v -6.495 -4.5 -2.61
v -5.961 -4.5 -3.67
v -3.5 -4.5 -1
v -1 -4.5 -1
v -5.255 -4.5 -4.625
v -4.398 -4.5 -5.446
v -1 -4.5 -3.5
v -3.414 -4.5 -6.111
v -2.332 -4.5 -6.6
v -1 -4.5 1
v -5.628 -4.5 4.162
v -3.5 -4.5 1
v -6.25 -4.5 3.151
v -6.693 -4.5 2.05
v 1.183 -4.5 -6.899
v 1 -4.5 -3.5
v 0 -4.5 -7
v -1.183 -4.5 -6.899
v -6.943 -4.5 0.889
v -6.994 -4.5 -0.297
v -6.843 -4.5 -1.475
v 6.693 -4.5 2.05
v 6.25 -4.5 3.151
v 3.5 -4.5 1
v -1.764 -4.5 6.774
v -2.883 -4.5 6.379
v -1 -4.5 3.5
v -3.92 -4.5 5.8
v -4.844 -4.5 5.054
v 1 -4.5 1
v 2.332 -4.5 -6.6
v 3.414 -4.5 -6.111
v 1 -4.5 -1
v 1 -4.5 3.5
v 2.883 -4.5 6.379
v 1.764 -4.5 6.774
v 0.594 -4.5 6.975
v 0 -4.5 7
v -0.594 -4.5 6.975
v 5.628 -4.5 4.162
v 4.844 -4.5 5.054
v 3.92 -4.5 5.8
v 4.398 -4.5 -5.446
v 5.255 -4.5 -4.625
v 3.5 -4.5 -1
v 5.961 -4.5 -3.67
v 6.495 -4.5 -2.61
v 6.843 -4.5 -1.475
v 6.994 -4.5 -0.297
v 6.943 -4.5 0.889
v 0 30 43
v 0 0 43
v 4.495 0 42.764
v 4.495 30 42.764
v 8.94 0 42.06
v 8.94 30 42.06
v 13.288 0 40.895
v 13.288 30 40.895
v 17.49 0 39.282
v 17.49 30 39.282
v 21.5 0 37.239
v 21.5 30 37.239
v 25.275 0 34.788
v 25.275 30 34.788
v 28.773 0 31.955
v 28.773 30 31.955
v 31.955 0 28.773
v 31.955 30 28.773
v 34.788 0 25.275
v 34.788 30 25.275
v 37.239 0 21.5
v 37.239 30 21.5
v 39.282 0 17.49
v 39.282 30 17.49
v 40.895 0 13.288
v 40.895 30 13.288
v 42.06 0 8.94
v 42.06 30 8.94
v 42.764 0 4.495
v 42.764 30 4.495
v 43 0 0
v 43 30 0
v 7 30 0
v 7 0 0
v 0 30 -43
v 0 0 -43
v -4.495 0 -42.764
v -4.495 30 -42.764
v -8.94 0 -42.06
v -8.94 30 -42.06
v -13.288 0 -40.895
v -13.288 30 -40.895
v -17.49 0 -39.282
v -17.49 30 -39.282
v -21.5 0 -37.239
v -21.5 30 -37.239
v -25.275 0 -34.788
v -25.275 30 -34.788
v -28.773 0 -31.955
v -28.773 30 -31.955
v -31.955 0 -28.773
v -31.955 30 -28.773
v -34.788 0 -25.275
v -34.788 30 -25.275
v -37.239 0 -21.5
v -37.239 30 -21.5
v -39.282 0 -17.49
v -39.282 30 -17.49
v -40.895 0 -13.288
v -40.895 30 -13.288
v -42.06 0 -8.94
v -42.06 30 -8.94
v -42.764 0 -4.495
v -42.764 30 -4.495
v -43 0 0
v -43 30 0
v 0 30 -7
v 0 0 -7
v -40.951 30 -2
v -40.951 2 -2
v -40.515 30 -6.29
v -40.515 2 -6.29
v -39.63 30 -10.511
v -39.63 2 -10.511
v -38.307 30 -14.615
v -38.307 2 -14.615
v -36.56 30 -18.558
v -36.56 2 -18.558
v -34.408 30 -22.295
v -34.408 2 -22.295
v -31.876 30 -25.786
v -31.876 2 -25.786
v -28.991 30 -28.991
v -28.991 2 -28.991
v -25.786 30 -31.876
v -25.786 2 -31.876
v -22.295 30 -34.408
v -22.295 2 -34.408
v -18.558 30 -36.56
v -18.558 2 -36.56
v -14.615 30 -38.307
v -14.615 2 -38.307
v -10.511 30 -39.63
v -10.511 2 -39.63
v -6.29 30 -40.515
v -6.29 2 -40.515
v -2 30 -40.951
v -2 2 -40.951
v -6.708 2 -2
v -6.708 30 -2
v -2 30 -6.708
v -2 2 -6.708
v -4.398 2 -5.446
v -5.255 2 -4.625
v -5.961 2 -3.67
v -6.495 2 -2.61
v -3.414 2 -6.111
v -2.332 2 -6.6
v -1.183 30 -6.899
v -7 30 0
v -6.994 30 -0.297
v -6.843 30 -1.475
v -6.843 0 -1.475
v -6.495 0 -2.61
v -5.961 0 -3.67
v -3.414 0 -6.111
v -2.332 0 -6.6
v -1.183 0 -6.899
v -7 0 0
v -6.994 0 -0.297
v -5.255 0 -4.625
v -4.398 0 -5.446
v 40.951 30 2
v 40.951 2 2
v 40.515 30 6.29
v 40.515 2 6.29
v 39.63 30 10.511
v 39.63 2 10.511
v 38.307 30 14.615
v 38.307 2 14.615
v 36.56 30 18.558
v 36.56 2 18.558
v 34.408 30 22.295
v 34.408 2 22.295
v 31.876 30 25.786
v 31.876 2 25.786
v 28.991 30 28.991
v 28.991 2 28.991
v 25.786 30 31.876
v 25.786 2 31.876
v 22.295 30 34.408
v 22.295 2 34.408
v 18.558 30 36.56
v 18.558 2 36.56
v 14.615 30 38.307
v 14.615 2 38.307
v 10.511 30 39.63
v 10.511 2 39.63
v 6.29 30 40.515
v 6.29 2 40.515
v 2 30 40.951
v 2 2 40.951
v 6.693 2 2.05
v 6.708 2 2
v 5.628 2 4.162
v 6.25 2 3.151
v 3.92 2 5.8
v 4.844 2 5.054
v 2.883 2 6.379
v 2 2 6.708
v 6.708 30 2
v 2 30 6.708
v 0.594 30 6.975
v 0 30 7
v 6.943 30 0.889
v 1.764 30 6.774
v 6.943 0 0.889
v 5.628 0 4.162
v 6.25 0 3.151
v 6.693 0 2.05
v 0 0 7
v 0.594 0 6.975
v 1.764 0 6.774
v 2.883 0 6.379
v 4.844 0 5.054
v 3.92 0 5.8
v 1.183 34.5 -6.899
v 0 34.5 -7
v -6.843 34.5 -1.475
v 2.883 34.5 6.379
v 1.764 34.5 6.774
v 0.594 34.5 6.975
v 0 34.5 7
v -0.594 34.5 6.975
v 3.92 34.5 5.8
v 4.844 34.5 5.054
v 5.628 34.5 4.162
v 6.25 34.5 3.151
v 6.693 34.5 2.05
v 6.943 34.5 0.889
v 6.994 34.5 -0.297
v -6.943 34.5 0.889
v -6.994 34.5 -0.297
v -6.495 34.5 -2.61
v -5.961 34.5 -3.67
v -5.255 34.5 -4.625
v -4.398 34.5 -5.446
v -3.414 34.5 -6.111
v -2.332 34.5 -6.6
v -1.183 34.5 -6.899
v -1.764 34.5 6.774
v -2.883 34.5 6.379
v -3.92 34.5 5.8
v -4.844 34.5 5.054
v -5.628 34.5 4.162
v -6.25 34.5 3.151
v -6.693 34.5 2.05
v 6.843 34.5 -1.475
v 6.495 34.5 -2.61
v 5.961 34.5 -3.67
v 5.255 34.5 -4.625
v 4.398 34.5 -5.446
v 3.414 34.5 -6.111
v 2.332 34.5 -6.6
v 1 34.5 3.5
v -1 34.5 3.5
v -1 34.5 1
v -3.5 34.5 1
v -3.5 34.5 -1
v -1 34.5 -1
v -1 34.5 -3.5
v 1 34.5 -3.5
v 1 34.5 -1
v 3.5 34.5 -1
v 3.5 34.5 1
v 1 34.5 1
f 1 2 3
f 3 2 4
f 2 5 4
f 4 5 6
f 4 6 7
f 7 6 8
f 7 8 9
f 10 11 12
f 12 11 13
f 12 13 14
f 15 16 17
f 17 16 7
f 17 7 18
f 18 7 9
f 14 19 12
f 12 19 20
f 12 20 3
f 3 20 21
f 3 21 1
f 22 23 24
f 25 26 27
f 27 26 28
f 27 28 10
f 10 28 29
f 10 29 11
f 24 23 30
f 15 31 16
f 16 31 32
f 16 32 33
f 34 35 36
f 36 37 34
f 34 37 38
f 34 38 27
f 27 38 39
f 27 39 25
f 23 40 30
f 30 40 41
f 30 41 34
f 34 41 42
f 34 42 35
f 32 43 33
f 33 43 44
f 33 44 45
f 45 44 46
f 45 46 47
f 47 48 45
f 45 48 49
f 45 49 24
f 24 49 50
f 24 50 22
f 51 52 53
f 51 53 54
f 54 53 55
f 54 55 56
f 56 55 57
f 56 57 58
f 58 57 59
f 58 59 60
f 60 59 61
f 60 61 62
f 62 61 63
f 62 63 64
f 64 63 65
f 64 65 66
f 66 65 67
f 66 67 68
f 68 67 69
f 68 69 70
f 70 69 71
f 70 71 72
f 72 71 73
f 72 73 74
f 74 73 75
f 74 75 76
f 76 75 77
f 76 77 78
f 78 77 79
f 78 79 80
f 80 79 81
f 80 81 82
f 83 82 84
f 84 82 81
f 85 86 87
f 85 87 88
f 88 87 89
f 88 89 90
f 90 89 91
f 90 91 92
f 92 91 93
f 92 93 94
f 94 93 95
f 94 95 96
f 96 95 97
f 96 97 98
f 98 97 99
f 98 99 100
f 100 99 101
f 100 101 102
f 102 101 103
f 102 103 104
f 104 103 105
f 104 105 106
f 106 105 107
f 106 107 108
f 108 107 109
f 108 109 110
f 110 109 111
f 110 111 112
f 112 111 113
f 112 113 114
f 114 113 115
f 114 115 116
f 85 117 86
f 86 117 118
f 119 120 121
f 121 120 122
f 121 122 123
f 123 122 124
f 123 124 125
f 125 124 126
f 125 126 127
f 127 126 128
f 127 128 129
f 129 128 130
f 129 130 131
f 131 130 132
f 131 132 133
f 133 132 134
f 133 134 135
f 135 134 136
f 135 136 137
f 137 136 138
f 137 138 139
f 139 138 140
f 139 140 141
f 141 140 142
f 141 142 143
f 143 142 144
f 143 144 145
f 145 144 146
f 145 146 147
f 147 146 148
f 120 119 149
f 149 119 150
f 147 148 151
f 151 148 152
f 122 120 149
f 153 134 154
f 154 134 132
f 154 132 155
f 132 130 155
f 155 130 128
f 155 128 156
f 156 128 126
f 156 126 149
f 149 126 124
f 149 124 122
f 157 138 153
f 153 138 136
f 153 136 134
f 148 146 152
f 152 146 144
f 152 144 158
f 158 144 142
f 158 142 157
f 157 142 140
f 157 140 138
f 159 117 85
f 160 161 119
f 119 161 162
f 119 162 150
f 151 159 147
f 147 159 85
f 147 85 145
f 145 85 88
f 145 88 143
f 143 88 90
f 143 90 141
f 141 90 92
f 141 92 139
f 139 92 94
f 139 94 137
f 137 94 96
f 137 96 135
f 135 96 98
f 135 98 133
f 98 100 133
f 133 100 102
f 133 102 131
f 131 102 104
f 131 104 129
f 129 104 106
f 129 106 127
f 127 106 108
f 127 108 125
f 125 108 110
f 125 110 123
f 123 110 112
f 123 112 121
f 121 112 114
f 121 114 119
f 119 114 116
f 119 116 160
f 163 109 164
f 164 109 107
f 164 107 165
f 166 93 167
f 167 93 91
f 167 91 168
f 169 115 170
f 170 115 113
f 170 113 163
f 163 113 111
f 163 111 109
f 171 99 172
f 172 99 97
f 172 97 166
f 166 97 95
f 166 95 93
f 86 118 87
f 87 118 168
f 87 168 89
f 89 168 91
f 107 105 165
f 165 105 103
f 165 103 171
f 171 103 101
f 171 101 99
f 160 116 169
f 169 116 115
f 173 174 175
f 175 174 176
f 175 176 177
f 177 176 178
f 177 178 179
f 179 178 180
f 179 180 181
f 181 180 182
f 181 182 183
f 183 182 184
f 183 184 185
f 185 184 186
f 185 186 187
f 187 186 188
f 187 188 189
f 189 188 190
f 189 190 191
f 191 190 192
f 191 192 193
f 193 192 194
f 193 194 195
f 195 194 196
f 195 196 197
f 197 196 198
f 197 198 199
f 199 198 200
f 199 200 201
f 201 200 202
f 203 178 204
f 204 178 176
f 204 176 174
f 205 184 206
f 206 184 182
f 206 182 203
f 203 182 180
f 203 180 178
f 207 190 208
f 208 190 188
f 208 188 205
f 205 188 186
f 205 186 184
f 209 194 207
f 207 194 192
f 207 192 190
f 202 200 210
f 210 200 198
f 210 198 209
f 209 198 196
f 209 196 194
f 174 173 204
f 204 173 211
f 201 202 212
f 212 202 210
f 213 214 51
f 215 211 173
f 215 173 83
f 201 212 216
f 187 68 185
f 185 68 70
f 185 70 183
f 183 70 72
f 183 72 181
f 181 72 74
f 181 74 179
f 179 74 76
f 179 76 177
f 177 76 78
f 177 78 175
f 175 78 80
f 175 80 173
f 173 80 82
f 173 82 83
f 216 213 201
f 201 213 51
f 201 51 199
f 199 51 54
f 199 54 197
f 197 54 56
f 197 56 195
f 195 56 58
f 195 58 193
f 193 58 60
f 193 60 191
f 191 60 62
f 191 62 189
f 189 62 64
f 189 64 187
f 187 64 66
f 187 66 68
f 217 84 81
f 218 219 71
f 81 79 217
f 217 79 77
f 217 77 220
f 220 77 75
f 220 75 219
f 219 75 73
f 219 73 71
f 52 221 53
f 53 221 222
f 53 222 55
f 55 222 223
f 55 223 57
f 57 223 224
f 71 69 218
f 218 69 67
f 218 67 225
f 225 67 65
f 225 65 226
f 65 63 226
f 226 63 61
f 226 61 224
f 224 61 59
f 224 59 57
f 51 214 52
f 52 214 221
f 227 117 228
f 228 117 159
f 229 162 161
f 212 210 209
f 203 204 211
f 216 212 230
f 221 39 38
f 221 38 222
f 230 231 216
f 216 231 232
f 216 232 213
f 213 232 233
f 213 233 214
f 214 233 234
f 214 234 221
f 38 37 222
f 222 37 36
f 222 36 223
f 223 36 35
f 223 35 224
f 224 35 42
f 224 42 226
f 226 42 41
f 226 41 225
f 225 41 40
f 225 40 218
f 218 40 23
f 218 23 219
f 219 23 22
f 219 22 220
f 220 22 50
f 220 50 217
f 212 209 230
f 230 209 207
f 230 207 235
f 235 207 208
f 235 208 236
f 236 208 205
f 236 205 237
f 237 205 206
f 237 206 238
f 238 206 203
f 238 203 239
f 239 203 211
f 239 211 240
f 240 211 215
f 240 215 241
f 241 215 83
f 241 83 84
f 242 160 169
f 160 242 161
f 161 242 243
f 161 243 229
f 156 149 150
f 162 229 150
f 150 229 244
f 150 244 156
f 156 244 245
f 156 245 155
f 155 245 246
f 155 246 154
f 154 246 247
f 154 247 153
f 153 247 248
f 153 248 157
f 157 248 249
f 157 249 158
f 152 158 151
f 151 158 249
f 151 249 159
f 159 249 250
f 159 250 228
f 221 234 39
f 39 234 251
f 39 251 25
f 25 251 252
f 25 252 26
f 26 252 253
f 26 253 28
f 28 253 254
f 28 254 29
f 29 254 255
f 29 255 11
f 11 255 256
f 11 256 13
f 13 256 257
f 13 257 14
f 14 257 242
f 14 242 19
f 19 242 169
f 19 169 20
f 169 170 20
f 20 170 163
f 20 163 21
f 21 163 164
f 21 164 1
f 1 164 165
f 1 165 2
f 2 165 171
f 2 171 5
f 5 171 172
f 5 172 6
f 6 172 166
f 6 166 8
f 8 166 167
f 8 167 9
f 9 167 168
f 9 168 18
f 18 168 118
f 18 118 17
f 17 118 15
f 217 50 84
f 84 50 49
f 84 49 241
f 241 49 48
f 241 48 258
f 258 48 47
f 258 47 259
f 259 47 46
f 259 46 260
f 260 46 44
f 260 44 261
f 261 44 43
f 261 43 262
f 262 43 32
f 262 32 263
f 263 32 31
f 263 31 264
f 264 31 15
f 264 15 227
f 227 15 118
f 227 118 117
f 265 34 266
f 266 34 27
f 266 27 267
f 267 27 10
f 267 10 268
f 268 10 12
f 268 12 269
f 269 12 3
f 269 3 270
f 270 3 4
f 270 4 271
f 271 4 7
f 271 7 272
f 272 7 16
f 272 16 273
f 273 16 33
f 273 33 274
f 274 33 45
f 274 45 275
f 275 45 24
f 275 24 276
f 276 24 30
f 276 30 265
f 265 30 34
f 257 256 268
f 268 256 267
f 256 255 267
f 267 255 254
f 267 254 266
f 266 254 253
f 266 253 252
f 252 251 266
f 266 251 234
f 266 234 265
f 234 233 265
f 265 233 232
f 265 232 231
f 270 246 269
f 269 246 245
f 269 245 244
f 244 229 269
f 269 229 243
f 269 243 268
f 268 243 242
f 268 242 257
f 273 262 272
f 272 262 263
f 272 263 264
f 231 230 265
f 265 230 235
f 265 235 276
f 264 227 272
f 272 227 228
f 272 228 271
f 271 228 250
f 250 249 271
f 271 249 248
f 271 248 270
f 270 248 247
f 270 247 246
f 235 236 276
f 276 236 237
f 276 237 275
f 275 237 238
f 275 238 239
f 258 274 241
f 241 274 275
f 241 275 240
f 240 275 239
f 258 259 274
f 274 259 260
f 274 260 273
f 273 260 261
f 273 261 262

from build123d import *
from build123d.topology import SkipClean

# Parameters (mm, degrees)
EXTRUDE_1_DEPTH      = 30
CUT_EXTRUDE_1_DEPTH  = 68.808554033
SHELL_START          = 2
SHELL_1_DEPTH        = 28
EXTRUDE_2_DEPTH      = 4.5
EXTRUDE_2_DEPTH_BACK = 34.5
SKETCH_3_R           = 7


# Read off the part's stored shape, not the designer's step: 抽壳1
with BuildPart() as part:
    # 草图1 → 凸台-拉伸1 (new body)
    with BuildSketch(Plane(origin=(0, 0, 0), x_dir=(1, 0, 0), z_dir=(0, 1, 0))):
        with BuildLine():
            Line((0, 7), (0, 43))
            ThreePointArc((0, 43), (-30.405591591, 30.405591591), (-43, 0))
            Line((-43, 0), (-7, 0))
            ThreePointArc((-7, 0), (-4.949747468, -4.949747468), (0, -7))
            Line((0, -7), (0, -43))
            ThreePointArc((0, -43), (30.405591591, -30.405591591), (43, 0))
            Line((43, 0), (7, 0))
            ThreePointArc((7, 0), (4.949747468, 4.949747468), (0, 7))
        make_face()
    extrude(amount=EXTRUDE_1_DEPTH)

    # 草图2 → 切除-拉伸1 (cut, through all)
    with BuildSketch(Plane(origin=(0, 30, 0), x_dir=(1, 0, 0), z_dir=(0, 1, 0))):
        Polygon((1, -1), (1, -3.5), (-1, -3.5), (-1, -1), (-3.5, -1), (-3.5, 1), (-1, 1), (-1, 3.5), (1, 3.5), (1, 1), (3.5, 1), (3.5, -1), align=None)
    extrude(amount=-CUT_EXTRUDE_1_DEPTH, mode=Mode.SUBTRACT)

    # 抽壳1 outline → 抽壳1 (cut)
    with BuildSketch(Plane(origin=(0, 0, 0), x_dir=(1, 0, 0), z_dir=(0, 1, 0)).offset(SHELL_START)):
        with BuildLine():
            Line((3, -3), (3, -5.5))
            Line((3, -5.5), (2, -5.5))
            Line((2, -5.5), (2, -40.951190459))
            ThreePointArc((2, -40.951190459), (28.991378029, -28.991378029), (40.951190459, -2))
            Line((40.951190459, -2), (5.5, -2))
            Line((5.5, -2), (5.5, -3))
            Line((5.5, -3), (3, -3))
        make_face()
        with BuildLine():
            Line((3, 4), (3, 3))
            Line((3, 3), (4, 3))
            ThreePointArc((4, 3), (3.535533906, 3.535533906), (3, 4))
        make_face()
        with BuildLine():
            Line((-3, -3), (-4, -3))
            ThreePointArc((-4, -3), (-3.535533906, -3.535533906), (-3, -4))
            Line((-3, -4), (-3, -3))
        make_face()
        with BuildLine():
            ThreePointArc((-2, 40.951190459), (-28.991378029, 28.991378029), (-40.951190459, 2))
            Line((-40.951190459, 2), (-5.5, 2))
            Line((-5.5, 2), (-5.5, 3))
            Line((-5.5, 3), (-3, 3))
            Line((-3, 3), (-3, 5.5))
            Line((-3, 5.5), (-2, 5.5))
            Line((-2, 5.5), (-2, 40.951190459))
        make_face()
    extrude(amount=SHELL_1_DEPTH, mode=Mode.SUBTRACT)

    # 草图3 → 凸台-拉伸2 (add, two sides: drawn at the far end of the back side and taken through both)
    with SkipClean():  # the faces are left unmerged after this step: merging them gives an invalid solid
        with BuildSketch(Plane(origin=(0, 30, 0), x_dir=(1, 0, 0), z_dir=(0, 1, 0)).offset(-EXTRUDE_2_DEPTH_BACK)):
            with Locations(Location((0, 0, 0), (0, 0, 270))):
                Circle(SKETCH_3_R)
            Polygon((-3.5, 1), (-1, 1), (-1, 3.5), (1, 3.5), (1, 1), (3.5, 1), (3.5, -1), (1, -1), (1, -3.5), (-1, -3.5), (-1, -1), (-3.5, -1), align=None, mode=Mode.SUBTRACT)
        extrude(amount=EXTRUDE_2_DEPTH + EXTRUDE_2_DEPTH_BACK)


solid = part.part
